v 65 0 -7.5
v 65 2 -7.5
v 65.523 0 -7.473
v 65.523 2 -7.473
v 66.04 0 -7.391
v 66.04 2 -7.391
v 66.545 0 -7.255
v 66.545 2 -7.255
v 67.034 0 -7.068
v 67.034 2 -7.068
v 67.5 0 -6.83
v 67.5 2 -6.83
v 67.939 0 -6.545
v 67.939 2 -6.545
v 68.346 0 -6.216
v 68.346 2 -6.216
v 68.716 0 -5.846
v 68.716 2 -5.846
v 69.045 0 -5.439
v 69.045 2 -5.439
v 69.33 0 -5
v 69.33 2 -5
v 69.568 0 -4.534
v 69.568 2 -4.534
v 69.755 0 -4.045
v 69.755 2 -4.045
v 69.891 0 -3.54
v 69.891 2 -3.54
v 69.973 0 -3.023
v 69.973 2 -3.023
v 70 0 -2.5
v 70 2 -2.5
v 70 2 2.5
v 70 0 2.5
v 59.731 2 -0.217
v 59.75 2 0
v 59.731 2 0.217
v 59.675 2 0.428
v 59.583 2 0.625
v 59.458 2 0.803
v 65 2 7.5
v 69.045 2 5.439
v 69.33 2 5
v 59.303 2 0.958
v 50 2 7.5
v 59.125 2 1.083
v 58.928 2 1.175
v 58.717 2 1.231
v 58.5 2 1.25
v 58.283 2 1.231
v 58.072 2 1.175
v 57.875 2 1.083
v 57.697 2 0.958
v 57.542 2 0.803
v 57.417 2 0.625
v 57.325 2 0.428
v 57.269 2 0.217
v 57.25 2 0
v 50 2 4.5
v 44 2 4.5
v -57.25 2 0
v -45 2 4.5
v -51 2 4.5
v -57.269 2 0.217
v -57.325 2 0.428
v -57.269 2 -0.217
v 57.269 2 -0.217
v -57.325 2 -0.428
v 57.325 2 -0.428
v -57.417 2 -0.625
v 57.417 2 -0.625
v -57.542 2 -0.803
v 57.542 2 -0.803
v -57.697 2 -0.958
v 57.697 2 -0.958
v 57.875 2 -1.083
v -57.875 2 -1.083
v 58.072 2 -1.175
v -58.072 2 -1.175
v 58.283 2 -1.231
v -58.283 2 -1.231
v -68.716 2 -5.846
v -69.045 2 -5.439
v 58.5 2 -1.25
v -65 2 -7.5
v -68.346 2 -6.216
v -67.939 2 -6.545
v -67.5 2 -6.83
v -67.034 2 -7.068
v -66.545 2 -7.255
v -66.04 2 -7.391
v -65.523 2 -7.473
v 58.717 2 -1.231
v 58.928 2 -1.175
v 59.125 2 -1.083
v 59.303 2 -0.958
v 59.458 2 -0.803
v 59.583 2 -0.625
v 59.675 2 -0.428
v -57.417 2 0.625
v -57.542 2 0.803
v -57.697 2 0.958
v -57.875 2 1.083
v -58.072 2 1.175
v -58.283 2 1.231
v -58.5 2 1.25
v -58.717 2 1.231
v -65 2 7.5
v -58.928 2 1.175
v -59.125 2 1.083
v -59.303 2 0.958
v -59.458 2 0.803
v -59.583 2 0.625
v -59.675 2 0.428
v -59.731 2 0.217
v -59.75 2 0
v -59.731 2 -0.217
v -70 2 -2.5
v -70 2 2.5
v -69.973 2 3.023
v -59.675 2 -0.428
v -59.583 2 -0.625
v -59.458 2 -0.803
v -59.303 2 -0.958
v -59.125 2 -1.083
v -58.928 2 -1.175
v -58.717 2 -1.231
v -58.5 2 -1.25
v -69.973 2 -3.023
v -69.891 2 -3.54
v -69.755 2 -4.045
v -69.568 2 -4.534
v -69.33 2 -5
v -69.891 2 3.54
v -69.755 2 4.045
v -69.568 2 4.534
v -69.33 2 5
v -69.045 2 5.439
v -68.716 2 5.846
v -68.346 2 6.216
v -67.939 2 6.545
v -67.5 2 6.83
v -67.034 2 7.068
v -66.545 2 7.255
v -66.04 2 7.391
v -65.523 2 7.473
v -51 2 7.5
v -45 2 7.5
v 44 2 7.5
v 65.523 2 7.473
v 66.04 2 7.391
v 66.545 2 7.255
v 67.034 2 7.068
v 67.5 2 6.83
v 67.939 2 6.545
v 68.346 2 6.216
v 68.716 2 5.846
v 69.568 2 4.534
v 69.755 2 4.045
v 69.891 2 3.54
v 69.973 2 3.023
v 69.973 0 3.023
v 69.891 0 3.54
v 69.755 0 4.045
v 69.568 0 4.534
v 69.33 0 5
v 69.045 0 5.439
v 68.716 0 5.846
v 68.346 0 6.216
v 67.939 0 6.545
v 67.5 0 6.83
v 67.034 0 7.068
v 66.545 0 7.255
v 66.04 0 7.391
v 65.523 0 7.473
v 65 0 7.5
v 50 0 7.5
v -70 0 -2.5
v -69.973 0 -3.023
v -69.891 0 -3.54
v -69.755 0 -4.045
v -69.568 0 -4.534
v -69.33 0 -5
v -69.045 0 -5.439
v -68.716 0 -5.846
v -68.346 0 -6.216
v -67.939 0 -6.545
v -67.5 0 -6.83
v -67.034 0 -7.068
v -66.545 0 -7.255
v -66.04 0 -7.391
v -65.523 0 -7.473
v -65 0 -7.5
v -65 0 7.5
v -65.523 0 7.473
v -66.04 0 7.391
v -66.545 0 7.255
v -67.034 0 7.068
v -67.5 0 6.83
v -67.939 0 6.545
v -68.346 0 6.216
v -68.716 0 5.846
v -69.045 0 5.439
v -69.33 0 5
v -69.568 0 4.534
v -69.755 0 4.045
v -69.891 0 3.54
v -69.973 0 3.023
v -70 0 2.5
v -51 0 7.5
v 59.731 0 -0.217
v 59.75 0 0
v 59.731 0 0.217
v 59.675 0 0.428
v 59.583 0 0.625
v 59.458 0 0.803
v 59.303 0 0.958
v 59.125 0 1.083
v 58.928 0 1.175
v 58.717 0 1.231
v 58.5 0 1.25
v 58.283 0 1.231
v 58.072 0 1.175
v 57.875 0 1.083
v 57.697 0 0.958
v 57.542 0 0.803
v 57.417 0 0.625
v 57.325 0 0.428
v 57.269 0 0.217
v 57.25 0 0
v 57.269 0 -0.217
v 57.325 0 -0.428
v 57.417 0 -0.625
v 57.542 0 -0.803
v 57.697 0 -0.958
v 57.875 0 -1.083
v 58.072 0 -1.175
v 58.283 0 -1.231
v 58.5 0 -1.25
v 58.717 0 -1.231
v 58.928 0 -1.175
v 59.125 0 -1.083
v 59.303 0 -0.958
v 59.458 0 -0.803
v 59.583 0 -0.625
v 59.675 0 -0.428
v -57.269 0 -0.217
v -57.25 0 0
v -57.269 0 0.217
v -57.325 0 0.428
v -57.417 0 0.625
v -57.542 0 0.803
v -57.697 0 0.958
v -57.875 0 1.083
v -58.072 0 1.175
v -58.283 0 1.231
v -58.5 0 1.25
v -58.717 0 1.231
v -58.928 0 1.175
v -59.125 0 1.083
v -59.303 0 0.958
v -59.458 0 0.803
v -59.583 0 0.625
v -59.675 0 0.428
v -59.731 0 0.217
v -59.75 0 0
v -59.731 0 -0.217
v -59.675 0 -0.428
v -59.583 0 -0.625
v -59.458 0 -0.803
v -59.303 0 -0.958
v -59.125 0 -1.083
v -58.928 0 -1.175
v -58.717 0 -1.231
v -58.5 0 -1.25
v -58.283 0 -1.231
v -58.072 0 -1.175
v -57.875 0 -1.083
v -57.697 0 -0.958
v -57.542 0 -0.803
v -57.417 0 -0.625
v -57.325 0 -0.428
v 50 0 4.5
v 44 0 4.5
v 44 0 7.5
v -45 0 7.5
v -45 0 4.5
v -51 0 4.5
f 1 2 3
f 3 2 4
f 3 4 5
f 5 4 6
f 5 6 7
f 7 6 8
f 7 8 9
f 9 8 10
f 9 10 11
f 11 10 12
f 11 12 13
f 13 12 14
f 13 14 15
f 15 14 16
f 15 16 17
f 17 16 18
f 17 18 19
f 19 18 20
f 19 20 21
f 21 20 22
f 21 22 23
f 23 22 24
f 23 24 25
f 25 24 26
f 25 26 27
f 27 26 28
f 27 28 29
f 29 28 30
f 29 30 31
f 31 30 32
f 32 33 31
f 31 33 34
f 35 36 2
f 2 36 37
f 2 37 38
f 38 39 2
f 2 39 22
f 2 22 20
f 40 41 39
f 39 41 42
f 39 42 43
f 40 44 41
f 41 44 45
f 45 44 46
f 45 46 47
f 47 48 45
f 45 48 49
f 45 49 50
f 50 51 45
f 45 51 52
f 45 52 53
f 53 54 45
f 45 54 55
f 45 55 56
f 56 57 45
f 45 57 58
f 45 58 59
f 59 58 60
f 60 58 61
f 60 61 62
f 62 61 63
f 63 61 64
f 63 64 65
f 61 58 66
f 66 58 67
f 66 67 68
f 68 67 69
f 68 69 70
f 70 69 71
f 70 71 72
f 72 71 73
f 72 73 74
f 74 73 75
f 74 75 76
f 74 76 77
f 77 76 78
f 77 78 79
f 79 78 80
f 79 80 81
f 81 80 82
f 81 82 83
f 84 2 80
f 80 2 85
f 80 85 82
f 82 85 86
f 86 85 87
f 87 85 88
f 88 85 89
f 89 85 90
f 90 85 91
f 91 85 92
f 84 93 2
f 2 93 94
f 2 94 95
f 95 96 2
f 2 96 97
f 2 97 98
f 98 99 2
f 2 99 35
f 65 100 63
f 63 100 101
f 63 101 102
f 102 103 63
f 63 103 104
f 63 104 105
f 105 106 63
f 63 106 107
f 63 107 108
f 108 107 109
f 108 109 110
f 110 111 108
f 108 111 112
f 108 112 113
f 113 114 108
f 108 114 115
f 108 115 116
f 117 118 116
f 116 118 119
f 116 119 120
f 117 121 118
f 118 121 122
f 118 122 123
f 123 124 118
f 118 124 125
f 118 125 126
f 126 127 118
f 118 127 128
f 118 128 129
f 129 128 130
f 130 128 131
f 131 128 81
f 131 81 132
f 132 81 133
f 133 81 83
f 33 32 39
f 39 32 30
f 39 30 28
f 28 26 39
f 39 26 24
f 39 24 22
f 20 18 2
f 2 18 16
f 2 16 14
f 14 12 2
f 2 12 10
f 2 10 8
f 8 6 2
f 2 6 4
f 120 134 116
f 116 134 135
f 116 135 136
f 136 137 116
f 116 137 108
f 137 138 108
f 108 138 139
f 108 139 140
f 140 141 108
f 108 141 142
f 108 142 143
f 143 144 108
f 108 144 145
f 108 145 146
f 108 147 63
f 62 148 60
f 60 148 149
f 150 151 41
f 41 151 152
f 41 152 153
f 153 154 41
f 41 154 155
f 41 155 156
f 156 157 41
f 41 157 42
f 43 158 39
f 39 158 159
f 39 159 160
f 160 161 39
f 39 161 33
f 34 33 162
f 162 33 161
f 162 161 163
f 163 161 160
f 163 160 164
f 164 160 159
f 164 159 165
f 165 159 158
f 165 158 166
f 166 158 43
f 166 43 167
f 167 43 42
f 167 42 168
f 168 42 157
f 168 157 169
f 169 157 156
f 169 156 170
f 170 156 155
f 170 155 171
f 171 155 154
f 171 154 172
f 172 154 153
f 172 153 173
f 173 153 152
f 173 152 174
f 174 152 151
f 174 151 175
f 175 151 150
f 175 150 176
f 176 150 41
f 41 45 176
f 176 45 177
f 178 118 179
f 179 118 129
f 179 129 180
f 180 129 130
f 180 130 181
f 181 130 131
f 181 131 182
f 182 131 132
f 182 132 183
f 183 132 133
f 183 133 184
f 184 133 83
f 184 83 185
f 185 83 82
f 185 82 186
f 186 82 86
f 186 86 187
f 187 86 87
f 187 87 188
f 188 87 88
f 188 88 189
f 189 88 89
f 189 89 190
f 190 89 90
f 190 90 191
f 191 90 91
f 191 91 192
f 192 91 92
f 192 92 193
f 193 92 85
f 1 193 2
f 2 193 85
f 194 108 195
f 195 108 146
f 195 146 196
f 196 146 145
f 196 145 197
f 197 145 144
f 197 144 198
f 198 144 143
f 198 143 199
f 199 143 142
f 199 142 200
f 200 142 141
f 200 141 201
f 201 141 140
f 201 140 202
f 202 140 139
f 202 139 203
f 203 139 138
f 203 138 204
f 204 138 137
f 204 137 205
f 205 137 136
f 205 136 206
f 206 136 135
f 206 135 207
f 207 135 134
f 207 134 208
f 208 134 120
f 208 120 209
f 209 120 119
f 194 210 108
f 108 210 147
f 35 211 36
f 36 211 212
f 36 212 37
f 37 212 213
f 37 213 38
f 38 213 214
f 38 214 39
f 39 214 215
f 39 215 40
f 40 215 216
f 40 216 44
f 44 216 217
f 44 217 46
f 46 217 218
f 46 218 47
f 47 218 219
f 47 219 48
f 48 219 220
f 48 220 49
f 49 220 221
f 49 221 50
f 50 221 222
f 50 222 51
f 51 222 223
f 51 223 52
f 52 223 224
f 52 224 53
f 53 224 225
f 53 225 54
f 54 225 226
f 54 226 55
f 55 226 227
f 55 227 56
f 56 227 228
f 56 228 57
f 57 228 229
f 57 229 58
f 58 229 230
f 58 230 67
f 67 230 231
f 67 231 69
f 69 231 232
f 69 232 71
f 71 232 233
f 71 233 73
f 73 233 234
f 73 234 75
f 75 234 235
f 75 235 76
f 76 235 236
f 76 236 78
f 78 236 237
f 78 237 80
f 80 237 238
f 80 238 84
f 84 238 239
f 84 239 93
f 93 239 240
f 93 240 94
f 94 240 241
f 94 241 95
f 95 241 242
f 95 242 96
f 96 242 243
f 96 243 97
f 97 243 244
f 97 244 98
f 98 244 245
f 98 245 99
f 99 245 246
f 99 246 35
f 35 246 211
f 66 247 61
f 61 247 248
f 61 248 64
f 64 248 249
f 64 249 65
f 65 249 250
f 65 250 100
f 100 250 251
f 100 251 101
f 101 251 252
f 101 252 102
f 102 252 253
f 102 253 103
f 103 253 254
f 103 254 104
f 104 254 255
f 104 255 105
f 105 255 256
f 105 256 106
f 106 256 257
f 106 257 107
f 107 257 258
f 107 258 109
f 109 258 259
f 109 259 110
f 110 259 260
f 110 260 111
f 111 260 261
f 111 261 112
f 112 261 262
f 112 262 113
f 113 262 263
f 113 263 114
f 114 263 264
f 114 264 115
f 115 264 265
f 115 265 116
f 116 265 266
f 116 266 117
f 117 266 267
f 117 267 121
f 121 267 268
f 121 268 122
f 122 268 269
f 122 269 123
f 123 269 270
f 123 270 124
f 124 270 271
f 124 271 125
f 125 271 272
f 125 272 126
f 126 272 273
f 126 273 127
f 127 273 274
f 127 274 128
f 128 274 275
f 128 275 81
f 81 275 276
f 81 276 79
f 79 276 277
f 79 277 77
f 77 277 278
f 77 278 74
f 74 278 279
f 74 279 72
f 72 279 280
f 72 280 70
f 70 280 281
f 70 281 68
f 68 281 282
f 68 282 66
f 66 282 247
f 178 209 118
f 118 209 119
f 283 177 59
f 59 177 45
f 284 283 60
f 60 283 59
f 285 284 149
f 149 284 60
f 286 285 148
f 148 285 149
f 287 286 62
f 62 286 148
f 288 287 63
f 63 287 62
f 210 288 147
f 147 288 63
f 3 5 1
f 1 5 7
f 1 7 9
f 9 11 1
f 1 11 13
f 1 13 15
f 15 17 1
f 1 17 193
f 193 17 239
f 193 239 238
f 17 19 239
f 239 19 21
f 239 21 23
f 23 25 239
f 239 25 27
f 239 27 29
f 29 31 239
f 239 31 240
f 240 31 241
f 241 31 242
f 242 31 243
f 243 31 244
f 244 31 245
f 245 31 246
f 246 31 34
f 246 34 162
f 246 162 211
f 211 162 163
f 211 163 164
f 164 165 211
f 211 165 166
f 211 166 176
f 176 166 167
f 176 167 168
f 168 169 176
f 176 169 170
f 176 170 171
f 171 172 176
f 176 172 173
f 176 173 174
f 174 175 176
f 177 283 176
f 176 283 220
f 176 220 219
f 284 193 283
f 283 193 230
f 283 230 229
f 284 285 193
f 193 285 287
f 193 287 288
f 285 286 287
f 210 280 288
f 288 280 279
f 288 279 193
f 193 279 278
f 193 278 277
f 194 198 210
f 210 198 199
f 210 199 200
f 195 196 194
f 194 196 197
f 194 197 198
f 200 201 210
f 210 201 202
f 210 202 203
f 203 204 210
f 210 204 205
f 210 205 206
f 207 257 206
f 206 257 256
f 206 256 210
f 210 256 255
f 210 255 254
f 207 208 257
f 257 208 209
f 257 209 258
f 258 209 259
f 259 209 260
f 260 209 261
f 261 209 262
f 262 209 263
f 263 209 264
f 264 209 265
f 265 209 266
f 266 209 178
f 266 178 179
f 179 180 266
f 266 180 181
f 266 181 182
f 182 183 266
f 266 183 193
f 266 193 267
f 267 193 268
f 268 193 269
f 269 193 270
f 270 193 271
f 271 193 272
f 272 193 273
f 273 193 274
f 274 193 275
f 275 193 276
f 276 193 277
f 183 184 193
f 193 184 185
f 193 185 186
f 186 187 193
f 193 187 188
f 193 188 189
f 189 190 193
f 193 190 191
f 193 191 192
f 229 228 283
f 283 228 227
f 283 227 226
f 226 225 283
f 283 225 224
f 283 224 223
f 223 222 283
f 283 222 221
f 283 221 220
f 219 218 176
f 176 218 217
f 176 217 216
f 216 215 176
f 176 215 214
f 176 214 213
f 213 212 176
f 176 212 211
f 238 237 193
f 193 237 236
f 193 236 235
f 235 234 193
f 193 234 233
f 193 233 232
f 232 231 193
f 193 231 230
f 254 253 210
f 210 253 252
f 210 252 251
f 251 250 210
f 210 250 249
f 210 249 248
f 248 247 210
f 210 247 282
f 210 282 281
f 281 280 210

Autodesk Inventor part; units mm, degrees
ref_plane "YZ Plane" through (0, 0, 0) normal (1, 0, 0) x (0, 1, 0)
ref_plane "XZ Plane" through (0, 0, 0) normal (0, 1, 0) x (-1, 0, 0)
ref_plane "XY Plane" through (0, 0, 0) normal (0, 0, 1) x (1, 0, 0)
sketch "Sketch1" plane through (0, 0, 0) normal (0, 1, 0) x (-1, 0, 0)
  line L0 (70, 7.5) -> (-70, 7.5)
  line L1 (-70, 7.5) -> (-70, -7.5)
  line L2 (-70, -7.5) -> (70, -7.5)
  line L3 (70, -7.5) -> (70, 7.5)
  line L4 (51, 7.5) -> (51, 4.5)
  line L5 (51, 4.5) -> (45, 4.5)
  line L6 (45, 4.5) -> (45, 7.5)
  line L7 (-50, 7.5) -> (-50, 4.5)
  line L8 (-50, 4.5) -> (-44, 4.5)
  line L9 (-44, 4.5) -> (-44, 7.5)
  point P0 (0, 0)
  point P1 (58.5, 0)
  point P2 (-58.5, 0)
  point P3 (-70, 0)
  dimension "d0" = 117
  dimension "d1" = 58.5
  dimension "d2" = 140
  dimension "d3" = 70
  dimension "d4" = 7.5
  dimension "d5" = 15
  dimension "d6" = 7.5
  dimension "d7" = 6
  dimension "d8" = 3
  dimension "d9" = 7.5
  dimension "d10" = 6
  dimension "d11" = 3
  dimension "d12" = 101
extrude "Extrusion1" add sketch "Sketch1" along normal blind 2 contours L3 L2 L1 L0 L7 L8 L9 L6 L5 L4
hole "Hole1" at (-58.5, 0, 0) at (58.5, 0, 0) direction (0, 1, 0) diameter 2.5 depth 6.5
fillet "Fillet1" radius 5 4 edges at (-70, 1, 7.5) (-70, 1, -7.5) (70, 1, 7.5) (70, 1, -7.5)
equation "\"d1\" = 0.5 * d0"
equation "\"d3\" = 0.5 * d2"
equation "\"d4\" = 0.5 * d5"
equation "\"d6\" = d4"
properties part number "3DP_PLA_Screw_Spacing_Test_Part"
